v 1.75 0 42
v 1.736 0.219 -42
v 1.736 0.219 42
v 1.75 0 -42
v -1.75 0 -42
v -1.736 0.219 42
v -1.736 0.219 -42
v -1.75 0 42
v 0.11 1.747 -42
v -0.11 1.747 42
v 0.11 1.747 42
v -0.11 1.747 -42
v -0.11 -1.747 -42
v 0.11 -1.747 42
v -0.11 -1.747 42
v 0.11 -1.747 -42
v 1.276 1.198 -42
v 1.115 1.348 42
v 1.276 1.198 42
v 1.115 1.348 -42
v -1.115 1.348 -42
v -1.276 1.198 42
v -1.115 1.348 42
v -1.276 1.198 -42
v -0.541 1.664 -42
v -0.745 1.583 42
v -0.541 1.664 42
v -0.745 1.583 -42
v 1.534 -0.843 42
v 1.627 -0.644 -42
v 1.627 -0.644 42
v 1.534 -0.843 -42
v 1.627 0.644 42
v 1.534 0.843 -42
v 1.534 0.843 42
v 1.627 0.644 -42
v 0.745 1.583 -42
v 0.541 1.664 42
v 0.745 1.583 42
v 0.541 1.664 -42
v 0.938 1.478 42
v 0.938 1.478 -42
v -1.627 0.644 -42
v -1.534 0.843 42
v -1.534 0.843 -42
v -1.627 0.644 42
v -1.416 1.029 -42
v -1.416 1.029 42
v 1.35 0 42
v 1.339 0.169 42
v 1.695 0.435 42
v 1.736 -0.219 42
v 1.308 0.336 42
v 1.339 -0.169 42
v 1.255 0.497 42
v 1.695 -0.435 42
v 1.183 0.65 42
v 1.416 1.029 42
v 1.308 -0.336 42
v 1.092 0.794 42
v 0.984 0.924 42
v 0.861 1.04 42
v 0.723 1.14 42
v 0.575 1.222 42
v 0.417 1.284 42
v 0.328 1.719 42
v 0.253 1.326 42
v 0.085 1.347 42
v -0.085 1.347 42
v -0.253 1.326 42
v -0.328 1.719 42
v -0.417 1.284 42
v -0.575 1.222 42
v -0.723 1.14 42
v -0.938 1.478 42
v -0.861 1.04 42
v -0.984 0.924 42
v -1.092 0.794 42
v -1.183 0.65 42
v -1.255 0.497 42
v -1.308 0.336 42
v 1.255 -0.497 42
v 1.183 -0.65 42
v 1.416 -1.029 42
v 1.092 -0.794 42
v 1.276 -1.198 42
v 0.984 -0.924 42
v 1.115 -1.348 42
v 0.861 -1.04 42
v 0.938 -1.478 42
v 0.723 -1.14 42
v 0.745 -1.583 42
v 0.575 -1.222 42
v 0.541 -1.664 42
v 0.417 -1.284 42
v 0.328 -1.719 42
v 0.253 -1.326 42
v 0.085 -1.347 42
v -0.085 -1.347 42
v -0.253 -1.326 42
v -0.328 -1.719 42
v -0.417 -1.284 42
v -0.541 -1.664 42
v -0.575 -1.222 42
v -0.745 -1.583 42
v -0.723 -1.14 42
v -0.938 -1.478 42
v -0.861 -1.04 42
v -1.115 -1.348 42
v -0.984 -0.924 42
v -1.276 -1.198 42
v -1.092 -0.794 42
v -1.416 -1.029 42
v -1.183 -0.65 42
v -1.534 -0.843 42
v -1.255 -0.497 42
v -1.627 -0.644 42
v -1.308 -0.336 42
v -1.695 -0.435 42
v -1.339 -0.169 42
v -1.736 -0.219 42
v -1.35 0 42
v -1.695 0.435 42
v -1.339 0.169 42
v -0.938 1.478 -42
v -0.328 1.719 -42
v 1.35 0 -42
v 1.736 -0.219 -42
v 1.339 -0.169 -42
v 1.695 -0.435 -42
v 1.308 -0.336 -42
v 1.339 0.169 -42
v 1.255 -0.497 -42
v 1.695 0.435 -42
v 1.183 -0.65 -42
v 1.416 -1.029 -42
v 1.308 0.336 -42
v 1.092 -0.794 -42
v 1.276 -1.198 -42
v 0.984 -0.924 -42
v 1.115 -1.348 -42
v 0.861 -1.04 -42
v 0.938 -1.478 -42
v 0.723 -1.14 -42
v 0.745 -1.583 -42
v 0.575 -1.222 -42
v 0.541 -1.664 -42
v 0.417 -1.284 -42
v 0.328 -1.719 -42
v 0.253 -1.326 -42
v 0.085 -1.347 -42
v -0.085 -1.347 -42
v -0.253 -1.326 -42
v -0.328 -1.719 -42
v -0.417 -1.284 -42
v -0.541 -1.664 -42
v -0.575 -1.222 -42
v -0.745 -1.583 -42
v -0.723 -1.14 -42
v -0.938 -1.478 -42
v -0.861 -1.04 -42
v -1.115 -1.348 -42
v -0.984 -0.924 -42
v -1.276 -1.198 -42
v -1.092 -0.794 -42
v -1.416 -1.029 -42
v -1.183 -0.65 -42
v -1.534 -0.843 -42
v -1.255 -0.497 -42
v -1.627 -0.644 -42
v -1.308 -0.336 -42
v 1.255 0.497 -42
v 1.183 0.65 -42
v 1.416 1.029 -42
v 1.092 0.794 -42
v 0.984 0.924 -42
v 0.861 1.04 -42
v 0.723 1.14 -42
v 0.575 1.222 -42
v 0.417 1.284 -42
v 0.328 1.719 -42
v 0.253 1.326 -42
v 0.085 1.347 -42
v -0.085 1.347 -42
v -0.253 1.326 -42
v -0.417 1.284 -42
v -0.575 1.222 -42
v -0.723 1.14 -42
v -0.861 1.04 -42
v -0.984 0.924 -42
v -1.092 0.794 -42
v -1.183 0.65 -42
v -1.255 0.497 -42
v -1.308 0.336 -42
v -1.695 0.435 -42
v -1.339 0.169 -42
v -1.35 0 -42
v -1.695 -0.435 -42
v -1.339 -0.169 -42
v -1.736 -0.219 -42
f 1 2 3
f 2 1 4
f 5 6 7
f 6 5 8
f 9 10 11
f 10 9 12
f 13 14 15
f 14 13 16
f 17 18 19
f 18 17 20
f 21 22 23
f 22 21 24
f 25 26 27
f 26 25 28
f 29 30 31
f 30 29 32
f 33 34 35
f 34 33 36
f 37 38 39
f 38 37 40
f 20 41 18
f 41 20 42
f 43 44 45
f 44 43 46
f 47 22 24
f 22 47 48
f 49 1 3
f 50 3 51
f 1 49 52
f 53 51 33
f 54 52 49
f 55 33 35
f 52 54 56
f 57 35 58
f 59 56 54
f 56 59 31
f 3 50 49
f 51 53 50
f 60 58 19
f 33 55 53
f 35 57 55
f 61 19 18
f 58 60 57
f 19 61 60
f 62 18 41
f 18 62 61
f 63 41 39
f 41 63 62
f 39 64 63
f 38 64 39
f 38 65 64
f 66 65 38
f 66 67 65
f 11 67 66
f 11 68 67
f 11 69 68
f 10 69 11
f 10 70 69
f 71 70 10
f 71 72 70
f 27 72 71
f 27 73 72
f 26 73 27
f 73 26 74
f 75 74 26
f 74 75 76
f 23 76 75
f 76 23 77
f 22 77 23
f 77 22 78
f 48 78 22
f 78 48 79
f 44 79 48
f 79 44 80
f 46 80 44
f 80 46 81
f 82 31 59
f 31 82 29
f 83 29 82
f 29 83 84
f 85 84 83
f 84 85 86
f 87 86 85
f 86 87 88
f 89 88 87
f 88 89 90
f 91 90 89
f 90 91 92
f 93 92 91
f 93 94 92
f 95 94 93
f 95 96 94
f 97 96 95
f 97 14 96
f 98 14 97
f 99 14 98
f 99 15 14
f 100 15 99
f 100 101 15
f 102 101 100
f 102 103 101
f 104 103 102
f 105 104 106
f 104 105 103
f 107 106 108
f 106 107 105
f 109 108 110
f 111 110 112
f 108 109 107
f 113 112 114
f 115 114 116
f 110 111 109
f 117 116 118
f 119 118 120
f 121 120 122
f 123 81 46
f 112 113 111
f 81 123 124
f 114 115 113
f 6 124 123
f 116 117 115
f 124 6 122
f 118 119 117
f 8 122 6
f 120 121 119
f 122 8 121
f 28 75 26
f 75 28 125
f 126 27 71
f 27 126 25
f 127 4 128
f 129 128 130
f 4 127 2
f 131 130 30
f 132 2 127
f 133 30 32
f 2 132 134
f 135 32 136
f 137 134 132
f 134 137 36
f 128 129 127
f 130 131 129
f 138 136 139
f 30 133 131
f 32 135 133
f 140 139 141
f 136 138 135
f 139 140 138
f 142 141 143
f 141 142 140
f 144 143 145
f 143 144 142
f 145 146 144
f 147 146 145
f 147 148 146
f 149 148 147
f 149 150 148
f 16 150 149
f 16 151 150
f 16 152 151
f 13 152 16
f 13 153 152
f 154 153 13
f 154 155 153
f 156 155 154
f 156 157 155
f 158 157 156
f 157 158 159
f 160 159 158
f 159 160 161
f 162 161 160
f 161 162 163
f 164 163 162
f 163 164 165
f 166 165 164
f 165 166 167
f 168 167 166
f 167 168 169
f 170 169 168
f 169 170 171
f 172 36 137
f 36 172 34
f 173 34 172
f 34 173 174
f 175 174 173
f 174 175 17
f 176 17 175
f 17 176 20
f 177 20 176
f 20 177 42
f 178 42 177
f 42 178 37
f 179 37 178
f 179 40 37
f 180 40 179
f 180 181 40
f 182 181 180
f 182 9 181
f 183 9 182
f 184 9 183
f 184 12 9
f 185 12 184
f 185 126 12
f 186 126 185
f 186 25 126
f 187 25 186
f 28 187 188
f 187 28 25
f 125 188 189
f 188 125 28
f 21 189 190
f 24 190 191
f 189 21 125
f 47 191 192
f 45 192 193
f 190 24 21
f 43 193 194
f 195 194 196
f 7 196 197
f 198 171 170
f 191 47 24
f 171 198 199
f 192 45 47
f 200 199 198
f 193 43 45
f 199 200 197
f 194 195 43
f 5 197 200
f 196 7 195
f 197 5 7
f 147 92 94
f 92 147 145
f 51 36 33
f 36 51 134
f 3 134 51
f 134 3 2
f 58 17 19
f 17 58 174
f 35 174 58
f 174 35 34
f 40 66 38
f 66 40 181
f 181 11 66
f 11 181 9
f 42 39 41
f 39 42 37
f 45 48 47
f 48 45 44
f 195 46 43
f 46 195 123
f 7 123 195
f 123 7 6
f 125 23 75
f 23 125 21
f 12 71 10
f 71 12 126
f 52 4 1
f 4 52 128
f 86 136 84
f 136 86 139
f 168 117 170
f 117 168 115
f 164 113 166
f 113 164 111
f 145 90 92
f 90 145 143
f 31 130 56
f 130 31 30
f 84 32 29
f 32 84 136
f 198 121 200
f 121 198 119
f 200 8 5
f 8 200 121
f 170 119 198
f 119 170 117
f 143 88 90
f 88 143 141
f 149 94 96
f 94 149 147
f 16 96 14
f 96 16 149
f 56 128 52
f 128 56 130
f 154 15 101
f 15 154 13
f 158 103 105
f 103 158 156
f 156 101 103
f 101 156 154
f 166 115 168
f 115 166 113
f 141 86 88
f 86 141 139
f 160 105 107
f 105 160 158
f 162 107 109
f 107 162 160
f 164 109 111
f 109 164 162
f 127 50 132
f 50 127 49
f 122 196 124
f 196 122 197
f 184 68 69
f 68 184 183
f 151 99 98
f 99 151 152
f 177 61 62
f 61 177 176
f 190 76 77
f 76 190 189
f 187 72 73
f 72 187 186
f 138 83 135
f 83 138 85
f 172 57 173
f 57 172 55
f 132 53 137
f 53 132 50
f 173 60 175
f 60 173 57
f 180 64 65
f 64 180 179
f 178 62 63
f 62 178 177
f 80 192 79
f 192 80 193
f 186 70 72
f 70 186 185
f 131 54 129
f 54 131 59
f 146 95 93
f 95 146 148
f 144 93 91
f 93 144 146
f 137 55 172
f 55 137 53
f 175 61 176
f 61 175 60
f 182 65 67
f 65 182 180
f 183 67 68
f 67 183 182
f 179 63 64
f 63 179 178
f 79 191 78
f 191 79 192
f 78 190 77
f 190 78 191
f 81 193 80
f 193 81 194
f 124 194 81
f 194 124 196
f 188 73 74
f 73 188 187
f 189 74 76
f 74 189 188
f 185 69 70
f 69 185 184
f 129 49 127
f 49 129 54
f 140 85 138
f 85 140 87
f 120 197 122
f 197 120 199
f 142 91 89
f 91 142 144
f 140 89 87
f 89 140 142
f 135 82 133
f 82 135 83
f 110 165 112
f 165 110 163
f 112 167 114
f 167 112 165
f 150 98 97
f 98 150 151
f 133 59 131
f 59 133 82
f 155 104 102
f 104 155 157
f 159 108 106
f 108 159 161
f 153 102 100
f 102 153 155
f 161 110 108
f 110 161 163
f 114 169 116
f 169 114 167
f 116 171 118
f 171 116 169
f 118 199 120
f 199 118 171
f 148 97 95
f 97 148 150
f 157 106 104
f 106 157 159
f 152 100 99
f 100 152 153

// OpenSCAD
$fn = 50;


difference() {
	union() {
		translate(v = [0, 0, -42.0000000000]) {
			cylinder(h = 84, r = 1.7500000000);
		}
	}
	union() {
		translate(v = [0, 0, -100.0000000000]) {
			cylinder(h = 200, r = 1.3500000000);
		}
	}
}
